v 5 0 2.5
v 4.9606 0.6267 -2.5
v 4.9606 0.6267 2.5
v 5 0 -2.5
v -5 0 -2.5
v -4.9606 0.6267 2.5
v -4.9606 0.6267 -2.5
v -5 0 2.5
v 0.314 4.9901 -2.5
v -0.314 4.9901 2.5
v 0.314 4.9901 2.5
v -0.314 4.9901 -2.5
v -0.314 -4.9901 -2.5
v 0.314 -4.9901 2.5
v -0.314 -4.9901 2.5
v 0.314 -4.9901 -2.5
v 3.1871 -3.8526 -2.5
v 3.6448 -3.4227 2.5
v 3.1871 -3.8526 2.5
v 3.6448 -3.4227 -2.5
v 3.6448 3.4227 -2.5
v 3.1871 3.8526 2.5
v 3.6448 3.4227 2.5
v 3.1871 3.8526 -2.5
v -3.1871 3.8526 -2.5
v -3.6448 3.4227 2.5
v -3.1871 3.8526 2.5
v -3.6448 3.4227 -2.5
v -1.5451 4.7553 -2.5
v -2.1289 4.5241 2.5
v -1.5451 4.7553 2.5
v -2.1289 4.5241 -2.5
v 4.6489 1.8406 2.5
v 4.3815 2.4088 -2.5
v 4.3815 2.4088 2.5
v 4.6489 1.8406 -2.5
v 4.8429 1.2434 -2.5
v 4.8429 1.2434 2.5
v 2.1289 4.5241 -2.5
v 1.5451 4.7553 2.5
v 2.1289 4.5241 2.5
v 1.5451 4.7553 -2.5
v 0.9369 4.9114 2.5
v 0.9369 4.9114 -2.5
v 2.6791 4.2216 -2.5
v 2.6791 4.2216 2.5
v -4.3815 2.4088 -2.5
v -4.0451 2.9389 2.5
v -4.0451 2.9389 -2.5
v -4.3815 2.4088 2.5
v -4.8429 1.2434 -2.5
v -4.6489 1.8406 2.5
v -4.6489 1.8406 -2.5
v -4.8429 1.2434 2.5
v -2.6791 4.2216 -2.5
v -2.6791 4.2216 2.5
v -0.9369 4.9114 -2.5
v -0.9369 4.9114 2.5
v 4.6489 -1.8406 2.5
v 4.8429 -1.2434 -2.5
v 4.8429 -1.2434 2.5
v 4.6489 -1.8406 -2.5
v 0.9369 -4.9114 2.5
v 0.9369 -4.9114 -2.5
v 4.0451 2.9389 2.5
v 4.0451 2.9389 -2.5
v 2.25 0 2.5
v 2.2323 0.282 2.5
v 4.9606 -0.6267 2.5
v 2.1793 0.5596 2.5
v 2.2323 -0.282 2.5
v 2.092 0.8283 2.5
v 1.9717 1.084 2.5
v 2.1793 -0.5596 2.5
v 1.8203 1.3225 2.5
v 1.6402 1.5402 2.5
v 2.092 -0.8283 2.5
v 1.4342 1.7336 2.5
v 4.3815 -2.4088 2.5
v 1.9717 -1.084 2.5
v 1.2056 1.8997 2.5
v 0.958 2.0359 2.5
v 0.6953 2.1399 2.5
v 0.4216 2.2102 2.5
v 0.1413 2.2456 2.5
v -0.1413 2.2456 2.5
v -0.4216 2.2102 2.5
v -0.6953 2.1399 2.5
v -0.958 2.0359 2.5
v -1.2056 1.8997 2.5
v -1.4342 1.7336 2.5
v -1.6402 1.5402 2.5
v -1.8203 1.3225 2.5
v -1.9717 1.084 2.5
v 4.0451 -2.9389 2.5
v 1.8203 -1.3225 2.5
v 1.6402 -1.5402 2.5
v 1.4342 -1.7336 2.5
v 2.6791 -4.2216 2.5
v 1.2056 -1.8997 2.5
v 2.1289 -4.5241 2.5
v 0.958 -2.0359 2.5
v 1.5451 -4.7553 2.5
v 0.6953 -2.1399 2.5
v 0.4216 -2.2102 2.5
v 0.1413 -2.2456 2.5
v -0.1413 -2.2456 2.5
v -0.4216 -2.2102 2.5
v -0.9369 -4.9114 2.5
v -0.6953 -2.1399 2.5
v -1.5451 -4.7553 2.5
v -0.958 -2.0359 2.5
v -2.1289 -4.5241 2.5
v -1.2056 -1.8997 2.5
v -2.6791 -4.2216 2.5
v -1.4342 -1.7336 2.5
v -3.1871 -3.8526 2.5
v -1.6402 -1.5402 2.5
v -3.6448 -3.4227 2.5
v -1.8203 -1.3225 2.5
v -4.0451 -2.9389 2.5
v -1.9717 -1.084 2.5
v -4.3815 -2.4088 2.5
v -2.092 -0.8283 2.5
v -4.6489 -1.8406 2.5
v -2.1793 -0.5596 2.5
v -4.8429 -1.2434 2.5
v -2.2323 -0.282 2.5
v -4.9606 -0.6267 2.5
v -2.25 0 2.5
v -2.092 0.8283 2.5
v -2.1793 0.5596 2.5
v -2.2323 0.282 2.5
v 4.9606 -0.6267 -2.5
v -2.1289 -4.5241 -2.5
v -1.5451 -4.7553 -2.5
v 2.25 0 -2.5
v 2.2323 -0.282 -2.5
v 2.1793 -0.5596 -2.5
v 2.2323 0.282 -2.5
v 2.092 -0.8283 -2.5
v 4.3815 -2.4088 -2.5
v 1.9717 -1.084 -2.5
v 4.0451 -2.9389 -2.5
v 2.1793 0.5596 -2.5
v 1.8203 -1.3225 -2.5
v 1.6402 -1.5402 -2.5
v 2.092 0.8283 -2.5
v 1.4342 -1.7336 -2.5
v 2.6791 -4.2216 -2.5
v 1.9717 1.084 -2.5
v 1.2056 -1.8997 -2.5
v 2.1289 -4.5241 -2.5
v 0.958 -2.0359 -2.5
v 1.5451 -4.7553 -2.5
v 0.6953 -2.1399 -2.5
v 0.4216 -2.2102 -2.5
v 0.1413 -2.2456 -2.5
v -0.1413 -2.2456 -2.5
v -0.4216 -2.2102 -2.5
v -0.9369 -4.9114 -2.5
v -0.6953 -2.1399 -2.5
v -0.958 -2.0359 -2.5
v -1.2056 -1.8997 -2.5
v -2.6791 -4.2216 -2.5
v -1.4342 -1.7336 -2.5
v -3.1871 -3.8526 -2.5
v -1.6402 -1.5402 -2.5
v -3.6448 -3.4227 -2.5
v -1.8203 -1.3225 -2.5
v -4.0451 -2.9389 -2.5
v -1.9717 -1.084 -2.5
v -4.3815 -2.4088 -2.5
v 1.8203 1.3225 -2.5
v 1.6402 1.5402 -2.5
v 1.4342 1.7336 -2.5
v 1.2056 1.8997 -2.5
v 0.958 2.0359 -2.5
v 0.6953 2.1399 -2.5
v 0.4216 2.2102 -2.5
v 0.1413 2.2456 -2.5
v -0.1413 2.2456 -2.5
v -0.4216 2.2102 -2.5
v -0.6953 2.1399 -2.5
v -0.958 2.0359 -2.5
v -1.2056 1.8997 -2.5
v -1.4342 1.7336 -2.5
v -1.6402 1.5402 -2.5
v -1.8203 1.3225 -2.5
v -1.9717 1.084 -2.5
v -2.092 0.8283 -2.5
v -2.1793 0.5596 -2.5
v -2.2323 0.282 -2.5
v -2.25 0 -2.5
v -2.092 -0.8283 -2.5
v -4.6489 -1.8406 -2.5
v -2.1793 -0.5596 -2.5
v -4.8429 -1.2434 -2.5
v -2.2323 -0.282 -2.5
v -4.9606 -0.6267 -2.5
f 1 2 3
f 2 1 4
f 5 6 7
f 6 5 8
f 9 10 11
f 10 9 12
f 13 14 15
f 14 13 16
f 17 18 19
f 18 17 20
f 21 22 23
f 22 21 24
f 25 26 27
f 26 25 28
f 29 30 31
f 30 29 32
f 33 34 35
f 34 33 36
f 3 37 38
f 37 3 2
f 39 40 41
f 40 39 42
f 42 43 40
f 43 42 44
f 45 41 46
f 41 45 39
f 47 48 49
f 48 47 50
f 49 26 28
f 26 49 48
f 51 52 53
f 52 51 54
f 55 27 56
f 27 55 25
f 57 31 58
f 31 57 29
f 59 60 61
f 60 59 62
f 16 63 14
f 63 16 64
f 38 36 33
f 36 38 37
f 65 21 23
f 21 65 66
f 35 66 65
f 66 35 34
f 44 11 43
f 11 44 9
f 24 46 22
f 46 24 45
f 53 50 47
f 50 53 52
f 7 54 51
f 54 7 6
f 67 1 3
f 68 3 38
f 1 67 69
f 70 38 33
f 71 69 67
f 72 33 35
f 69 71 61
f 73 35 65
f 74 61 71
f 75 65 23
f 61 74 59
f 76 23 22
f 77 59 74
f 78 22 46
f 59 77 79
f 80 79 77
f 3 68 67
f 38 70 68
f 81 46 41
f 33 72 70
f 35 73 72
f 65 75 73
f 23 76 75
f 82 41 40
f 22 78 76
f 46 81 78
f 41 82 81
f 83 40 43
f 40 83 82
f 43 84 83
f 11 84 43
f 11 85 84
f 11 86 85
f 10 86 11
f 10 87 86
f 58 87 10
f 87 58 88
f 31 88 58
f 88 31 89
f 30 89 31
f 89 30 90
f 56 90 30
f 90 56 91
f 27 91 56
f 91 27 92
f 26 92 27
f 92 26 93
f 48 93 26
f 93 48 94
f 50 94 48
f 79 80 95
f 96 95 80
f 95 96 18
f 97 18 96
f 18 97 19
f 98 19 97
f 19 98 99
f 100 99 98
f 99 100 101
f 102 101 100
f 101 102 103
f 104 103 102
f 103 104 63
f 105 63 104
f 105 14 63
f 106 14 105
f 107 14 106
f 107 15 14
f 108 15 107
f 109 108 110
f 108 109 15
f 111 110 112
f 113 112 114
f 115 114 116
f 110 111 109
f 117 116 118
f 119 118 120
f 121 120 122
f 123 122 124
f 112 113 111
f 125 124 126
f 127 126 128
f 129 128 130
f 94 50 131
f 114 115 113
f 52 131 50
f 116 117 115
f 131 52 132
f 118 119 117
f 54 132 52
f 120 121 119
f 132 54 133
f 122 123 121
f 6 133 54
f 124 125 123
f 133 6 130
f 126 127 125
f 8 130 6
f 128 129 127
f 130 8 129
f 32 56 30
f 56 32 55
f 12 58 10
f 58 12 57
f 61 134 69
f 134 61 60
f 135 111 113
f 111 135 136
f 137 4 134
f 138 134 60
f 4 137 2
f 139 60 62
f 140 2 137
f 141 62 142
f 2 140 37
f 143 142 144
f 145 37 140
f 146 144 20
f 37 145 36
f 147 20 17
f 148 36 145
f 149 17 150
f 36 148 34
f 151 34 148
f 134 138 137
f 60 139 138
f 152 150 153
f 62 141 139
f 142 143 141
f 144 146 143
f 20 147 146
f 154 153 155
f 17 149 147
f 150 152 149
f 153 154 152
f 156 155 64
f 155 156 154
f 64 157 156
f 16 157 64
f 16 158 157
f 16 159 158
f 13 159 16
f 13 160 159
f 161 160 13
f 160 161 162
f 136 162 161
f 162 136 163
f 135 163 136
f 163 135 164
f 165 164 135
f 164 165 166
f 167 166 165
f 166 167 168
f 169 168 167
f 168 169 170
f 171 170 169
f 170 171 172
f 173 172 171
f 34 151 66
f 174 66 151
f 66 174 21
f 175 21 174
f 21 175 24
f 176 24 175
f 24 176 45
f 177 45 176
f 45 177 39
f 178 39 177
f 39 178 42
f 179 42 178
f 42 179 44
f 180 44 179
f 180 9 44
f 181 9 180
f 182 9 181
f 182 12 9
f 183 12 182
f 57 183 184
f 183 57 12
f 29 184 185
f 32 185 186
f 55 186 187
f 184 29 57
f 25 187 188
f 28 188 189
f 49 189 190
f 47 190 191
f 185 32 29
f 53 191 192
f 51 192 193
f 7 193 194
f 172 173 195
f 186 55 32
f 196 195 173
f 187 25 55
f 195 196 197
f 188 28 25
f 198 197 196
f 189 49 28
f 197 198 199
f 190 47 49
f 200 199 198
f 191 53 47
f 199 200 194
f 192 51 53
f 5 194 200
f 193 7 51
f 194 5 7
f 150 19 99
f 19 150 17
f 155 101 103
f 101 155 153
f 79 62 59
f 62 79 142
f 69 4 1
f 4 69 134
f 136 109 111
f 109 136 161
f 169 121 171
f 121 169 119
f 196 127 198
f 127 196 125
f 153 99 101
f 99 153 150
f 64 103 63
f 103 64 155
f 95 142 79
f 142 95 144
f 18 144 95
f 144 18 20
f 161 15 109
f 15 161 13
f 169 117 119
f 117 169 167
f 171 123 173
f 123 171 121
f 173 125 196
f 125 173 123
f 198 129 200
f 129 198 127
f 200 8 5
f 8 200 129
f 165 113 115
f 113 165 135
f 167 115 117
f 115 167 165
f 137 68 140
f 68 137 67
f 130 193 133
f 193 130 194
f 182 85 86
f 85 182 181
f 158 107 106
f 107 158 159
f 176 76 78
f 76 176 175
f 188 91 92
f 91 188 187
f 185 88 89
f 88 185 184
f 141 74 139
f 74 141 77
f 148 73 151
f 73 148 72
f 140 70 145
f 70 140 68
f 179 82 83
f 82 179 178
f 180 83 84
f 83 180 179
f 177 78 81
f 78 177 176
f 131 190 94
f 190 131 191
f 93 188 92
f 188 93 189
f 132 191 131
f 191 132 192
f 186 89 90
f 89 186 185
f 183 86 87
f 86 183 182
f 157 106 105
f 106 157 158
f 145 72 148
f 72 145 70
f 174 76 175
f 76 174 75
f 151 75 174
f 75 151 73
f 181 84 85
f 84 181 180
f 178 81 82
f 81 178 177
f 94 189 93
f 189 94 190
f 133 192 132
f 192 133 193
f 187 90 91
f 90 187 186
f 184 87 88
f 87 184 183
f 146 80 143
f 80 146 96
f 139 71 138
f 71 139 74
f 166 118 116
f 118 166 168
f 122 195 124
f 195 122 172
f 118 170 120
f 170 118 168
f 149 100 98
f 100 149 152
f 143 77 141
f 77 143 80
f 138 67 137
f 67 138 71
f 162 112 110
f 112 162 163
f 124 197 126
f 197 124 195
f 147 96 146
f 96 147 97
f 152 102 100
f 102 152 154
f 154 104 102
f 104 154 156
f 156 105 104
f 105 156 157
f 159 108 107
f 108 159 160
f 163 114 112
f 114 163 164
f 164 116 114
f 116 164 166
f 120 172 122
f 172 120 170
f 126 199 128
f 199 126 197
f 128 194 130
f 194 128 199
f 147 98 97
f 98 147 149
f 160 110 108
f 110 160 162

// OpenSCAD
$fn = 50;


difference() {
	union() {
		translate(v = [0, 0, -2.5000000000]) {
			cylinder(h = 5, r = 5.0000000000);
		}
	}
	union() {
		translate(v = [0, 0, -100.0000000000]) {
			cylinder(h = 200, r = 2.2500000000);
		}
	}
}
